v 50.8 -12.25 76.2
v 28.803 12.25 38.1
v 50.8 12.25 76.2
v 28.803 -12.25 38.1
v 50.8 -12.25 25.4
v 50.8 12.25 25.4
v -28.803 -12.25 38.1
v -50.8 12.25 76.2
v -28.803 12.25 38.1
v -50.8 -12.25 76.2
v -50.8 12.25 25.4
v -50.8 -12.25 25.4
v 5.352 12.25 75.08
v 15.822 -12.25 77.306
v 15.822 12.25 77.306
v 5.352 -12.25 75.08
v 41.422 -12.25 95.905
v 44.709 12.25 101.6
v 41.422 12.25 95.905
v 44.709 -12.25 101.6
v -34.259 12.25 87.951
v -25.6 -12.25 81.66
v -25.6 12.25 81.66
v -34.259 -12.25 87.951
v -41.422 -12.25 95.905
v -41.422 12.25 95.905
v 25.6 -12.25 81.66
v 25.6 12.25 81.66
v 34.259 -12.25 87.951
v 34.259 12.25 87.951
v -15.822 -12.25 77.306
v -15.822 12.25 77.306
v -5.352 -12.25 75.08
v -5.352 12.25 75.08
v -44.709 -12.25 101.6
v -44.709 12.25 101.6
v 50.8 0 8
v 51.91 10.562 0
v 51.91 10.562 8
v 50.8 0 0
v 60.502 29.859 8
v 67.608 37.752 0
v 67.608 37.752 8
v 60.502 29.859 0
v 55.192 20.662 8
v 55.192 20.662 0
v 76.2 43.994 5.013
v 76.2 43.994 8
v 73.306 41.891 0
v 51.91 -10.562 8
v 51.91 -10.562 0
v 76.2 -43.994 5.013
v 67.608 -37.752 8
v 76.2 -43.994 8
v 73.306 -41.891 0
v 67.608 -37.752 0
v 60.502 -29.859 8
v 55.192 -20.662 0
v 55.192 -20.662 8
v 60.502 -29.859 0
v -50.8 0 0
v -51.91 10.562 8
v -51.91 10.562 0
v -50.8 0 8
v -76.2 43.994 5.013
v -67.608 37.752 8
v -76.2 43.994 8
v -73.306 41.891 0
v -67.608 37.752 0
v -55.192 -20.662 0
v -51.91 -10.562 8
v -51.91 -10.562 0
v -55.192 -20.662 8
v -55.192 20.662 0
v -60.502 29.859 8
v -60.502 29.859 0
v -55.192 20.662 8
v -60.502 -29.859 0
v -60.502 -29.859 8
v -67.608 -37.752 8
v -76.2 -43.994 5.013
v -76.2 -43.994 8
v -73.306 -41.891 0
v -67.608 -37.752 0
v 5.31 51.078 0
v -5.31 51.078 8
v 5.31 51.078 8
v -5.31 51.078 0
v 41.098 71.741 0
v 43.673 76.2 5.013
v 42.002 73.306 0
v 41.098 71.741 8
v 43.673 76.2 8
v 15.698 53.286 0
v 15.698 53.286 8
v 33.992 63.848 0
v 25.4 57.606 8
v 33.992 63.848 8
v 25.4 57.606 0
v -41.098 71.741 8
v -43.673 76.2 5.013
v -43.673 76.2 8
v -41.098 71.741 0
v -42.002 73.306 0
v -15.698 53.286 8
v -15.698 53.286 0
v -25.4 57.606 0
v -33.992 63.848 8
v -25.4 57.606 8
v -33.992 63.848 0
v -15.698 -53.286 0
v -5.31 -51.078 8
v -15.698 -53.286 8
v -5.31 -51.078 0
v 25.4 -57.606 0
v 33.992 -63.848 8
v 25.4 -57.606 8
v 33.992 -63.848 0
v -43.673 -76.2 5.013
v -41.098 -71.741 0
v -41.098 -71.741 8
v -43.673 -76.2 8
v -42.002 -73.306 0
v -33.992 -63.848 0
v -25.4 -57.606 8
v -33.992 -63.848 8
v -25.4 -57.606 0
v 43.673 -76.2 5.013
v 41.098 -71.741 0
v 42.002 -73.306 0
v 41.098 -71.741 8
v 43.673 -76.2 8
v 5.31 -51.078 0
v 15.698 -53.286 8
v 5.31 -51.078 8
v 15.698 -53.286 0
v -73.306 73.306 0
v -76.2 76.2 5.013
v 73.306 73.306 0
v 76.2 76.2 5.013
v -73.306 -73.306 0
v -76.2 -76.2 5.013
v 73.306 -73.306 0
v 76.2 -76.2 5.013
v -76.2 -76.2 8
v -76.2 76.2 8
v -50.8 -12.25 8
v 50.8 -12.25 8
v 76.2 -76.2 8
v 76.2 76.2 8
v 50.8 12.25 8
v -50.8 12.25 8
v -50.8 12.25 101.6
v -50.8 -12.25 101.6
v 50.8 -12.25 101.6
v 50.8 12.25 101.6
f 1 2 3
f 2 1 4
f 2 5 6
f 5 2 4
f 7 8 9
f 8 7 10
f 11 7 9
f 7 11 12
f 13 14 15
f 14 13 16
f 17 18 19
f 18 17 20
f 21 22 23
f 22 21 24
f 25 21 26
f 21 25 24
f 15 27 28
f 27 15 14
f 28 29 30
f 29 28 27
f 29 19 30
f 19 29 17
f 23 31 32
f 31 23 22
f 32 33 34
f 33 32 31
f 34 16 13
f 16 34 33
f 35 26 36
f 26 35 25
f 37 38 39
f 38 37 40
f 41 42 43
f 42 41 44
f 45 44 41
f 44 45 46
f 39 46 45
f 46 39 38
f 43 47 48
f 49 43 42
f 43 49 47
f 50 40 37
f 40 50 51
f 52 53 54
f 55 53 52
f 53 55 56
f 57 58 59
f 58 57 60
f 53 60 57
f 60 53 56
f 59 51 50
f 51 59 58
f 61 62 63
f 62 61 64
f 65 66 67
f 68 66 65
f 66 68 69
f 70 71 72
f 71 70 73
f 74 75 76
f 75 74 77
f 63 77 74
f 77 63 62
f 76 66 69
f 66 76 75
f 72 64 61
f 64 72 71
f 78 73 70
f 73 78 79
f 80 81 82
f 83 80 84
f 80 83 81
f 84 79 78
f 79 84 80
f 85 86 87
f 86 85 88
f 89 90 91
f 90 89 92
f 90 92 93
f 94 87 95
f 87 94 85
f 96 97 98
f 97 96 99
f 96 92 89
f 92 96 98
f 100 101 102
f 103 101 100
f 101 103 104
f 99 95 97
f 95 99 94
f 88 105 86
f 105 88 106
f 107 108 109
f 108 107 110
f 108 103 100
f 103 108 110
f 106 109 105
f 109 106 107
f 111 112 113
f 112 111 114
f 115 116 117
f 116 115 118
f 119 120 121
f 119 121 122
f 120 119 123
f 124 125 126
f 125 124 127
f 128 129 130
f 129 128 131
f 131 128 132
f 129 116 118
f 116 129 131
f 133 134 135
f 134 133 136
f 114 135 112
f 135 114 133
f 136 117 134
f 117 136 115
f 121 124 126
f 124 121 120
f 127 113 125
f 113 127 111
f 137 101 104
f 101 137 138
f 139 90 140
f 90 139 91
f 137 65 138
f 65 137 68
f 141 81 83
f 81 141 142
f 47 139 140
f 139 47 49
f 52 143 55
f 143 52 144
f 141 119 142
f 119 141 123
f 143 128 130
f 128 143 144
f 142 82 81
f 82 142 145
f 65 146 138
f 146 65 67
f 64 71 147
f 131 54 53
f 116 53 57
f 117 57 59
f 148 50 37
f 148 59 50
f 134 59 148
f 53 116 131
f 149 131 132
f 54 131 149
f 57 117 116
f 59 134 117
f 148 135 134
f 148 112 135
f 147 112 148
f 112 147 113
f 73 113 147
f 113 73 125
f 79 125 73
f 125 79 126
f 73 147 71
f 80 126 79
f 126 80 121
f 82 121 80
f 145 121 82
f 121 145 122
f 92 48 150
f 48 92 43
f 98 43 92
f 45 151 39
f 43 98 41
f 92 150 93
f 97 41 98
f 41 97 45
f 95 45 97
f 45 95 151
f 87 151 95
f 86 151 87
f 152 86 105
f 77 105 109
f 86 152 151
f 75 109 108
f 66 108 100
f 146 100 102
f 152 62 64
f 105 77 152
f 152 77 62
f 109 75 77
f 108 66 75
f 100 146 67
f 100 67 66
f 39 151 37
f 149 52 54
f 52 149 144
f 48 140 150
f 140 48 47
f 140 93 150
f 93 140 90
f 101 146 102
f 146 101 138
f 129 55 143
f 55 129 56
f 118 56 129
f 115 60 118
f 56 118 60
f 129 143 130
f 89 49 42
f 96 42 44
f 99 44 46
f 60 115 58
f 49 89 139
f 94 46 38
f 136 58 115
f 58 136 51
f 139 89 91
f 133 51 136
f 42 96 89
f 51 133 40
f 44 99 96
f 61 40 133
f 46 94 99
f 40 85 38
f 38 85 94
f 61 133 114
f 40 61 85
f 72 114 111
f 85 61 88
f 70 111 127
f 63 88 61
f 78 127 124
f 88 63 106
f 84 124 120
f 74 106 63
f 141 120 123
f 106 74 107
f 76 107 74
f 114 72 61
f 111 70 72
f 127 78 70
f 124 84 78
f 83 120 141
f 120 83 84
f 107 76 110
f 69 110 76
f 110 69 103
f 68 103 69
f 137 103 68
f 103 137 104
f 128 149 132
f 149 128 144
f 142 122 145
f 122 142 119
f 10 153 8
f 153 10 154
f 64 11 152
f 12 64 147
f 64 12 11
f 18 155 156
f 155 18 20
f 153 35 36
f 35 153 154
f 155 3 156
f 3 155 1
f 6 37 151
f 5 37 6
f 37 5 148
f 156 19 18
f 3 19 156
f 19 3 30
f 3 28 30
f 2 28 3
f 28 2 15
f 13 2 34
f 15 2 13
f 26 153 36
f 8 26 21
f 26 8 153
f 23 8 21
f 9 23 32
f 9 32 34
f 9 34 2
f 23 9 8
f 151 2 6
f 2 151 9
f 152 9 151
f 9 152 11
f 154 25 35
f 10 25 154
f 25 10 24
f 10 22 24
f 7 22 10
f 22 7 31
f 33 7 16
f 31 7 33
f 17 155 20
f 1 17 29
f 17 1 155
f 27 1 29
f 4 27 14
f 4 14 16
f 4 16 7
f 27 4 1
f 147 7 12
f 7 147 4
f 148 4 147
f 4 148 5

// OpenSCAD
// Jamison Hunter 
// April 24, 2023
// rocket_mount.scad
// mount designed to hold a 4" diameter rocket body tube while working

difference() {
translate([0, 0, 50.8])
cube([101.6, 24.5, 101.6], center = true);

union() {

translate([50.8, 0, 25.4])
rotate([30, 0, 90])
translate([0, 0, 50.8])
cube([101.6, 50.8, 101.6], center = true);
    
translate([-50.8, 0, 25.4])
rotate([-30, 0, 90])
translate([0, 0, 50.8])
cube([101.6, 50.8, 101.6], center = true);

translate([0, 0, 126])
rotate([90, 0, 0])
cylinder(r = 51.2, h = 100, center = true);

}
}

difference() {
translate([0, 0, 4])
cube([152.4, 152.4, 8], center = true);

union() {
    
translate([101.6, 0, 0])
cylinder(r = 50.8, h = 20, center = true);

translate([-101.6, 0, 0])
cylinder(r = 50.8, h = 20, center = true);

translate([0, 101.6, 0])
cylinder(r = 50.8, h = 20, center = true);

translate([0, -101.6, 0])
cylinder(r = 50.8, h = 20, center = true);

translate([0, 96.4, 0])
rotate([-30, 0, 0])
cube([156, 40, 40], center = true);

rotate([0, 0, 90])
translate([0, 96.4, 0])
rotate([-30, 0, 0])
cube([156, 40, 40], center = true);

rotate([0, 0, -90])
translate([0, 96.4, 0])
rotate([-30, 0, 0])
cube([156, 40, 40], center = true);

rotate([0, 0, 180])
translate([0, 96.4, 0])
rotate([-30, 0, 0])
cube([156, 40, 40], center = true);

}
}
